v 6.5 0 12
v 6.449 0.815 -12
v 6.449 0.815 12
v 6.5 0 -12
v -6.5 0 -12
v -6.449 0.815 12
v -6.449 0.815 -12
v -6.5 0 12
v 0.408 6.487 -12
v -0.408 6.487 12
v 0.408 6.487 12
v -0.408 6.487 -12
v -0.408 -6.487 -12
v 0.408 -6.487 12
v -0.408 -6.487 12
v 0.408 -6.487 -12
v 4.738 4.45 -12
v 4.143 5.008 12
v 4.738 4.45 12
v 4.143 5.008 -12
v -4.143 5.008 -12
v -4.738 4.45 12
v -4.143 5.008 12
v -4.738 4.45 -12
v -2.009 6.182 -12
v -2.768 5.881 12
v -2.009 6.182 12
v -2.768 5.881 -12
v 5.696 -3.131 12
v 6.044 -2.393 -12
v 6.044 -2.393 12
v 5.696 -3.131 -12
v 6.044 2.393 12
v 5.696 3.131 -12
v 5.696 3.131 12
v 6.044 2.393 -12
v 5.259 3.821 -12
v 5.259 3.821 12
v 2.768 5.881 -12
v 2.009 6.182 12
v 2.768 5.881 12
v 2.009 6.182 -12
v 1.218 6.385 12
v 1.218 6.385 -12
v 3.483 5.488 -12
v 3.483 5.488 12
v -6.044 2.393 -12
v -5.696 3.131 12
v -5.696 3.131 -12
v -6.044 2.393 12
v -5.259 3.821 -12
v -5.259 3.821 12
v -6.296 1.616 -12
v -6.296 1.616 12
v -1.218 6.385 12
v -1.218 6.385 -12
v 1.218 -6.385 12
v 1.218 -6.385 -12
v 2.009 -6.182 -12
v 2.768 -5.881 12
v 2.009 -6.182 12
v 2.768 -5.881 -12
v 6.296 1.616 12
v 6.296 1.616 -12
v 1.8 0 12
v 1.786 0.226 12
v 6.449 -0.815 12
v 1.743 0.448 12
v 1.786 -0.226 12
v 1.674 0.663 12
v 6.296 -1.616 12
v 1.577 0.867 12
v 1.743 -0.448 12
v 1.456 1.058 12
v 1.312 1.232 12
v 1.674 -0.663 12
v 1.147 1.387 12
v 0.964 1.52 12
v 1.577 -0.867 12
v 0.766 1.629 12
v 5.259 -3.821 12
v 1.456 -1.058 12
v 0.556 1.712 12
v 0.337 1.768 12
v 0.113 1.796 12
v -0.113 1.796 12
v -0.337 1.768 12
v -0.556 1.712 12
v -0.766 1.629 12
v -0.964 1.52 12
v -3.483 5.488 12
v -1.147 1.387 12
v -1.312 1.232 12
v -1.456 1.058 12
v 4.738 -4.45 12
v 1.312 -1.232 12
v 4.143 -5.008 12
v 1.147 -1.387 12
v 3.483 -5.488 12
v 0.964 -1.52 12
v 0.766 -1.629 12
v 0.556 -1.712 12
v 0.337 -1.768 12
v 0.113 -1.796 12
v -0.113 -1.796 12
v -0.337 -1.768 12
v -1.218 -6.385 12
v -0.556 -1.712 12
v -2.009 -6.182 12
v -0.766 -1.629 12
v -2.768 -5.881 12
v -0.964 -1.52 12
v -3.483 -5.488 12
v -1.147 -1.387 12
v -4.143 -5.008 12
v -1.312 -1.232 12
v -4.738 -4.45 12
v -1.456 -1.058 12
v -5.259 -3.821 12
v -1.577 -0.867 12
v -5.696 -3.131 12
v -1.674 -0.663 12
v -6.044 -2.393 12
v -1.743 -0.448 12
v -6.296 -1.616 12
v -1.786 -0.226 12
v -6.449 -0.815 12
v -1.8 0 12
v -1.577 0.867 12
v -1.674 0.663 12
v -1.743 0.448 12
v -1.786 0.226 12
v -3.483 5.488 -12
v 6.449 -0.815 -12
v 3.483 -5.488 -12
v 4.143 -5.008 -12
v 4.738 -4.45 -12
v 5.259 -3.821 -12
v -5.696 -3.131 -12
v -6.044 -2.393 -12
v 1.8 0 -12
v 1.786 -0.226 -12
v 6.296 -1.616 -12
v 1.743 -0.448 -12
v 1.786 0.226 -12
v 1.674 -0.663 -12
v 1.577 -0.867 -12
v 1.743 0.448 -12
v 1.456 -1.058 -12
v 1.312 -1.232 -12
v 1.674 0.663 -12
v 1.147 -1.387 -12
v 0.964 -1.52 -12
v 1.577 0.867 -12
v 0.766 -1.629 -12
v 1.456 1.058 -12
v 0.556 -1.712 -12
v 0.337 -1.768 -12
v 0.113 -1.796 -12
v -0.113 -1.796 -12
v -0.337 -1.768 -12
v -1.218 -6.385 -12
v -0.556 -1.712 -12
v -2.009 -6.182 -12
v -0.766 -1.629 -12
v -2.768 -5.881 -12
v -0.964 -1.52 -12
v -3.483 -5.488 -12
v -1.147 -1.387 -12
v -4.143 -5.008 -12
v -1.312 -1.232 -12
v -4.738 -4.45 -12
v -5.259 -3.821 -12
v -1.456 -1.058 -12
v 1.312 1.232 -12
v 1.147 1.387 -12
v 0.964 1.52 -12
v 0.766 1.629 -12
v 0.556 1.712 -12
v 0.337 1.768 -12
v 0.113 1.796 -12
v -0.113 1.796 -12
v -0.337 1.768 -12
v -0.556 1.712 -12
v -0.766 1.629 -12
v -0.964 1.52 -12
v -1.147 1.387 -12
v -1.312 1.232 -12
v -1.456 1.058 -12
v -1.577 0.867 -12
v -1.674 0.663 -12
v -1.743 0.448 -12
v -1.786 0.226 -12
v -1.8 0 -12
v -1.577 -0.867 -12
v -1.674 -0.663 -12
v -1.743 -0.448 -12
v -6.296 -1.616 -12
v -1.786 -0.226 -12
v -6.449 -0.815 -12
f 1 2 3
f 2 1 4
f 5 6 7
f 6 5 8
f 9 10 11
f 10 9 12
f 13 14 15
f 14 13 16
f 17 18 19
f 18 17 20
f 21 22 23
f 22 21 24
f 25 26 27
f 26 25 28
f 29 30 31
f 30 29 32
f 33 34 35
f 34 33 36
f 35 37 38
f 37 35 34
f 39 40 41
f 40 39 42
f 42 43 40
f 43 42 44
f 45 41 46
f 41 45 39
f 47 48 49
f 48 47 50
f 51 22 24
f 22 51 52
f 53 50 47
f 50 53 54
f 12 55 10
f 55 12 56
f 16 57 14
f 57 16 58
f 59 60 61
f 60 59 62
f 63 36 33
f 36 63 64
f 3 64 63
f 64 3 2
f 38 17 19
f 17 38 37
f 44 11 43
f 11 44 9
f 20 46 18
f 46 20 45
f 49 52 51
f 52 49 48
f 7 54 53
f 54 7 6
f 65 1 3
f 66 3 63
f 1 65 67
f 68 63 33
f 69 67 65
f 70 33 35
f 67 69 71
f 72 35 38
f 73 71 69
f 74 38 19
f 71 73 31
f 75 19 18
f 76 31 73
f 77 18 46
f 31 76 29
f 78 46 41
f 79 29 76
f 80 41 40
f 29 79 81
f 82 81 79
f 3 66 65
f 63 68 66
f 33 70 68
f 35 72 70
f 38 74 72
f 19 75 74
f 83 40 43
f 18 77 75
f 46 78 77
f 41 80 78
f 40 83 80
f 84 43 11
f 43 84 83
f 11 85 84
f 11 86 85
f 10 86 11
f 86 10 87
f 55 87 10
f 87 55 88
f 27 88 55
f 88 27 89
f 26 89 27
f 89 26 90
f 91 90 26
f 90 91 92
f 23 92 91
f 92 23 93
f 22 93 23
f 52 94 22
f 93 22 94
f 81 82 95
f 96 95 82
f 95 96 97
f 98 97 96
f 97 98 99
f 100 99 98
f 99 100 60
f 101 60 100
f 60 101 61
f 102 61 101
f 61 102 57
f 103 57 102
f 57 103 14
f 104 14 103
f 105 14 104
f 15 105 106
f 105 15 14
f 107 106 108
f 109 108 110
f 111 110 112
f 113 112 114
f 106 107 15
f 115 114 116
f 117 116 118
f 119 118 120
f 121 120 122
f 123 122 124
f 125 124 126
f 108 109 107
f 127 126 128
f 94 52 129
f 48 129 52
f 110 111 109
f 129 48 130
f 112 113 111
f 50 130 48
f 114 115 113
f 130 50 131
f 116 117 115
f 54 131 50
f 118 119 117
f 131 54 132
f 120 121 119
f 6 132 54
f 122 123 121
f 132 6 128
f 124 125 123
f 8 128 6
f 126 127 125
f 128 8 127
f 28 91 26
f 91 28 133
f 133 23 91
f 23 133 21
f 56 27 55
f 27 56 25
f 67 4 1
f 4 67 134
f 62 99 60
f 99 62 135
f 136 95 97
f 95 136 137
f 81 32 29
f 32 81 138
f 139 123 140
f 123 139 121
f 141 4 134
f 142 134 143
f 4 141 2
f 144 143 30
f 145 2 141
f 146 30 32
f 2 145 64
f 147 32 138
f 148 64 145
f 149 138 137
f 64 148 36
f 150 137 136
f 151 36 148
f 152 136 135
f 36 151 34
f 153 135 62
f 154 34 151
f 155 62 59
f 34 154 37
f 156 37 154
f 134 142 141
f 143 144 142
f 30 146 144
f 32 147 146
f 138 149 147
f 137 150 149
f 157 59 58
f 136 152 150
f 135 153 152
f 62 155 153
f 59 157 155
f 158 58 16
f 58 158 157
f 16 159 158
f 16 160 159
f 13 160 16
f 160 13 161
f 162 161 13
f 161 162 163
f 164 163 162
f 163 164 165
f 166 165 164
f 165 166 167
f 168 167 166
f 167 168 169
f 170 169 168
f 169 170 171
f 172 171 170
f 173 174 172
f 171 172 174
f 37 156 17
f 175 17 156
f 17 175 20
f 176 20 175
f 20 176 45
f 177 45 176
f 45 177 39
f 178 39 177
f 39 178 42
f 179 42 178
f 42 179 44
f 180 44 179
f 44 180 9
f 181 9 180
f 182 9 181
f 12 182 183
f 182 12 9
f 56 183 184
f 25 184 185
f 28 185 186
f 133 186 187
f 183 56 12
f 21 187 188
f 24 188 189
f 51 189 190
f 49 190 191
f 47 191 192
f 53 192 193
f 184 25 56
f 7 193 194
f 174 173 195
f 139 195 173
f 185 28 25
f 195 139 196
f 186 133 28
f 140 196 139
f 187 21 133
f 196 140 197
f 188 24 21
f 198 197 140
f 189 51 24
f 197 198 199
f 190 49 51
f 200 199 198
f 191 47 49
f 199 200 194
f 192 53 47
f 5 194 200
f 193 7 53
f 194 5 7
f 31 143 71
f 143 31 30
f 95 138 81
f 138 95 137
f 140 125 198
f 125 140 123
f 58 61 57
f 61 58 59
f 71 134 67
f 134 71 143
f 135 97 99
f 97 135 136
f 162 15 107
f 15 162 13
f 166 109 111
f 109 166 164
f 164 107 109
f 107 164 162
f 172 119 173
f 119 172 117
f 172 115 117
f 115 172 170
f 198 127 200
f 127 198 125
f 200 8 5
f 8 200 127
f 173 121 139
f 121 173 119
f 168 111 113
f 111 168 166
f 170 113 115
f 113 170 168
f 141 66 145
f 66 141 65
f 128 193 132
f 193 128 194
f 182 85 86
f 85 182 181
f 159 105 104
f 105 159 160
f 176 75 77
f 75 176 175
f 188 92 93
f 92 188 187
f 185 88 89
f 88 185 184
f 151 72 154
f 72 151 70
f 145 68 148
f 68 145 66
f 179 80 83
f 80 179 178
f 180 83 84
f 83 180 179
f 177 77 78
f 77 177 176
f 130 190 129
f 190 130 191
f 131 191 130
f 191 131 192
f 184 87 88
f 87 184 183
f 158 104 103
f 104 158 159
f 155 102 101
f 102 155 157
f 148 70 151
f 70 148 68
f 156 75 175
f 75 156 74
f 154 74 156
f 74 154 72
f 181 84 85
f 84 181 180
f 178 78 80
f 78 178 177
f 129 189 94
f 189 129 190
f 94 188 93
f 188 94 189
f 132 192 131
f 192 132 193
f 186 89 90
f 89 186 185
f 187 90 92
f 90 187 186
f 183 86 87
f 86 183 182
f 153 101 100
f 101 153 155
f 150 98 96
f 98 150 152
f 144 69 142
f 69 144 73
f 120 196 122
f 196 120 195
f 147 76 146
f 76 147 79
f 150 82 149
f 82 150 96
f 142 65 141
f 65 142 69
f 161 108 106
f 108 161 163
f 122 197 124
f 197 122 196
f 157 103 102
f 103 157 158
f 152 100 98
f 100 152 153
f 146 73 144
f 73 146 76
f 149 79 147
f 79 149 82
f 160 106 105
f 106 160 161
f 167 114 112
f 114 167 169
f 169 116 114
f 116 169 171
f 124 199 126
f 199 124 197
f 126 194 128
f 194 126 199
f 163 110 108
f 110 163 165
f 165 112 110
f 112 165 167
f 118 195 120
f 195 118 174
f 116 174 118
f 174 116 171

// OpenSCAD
$fn = 50;


difference() {
	union() {
		translate(v = [0, 0, -12.0000000000]) {
			cylinder(h = 24, r = 6.5000000000);
		}
	}
	union() {
		translate(v = [0, 0, -100.0000000000]) {
			cylinder(h = 200, r = 1.8000000000);
		}
	}
}
